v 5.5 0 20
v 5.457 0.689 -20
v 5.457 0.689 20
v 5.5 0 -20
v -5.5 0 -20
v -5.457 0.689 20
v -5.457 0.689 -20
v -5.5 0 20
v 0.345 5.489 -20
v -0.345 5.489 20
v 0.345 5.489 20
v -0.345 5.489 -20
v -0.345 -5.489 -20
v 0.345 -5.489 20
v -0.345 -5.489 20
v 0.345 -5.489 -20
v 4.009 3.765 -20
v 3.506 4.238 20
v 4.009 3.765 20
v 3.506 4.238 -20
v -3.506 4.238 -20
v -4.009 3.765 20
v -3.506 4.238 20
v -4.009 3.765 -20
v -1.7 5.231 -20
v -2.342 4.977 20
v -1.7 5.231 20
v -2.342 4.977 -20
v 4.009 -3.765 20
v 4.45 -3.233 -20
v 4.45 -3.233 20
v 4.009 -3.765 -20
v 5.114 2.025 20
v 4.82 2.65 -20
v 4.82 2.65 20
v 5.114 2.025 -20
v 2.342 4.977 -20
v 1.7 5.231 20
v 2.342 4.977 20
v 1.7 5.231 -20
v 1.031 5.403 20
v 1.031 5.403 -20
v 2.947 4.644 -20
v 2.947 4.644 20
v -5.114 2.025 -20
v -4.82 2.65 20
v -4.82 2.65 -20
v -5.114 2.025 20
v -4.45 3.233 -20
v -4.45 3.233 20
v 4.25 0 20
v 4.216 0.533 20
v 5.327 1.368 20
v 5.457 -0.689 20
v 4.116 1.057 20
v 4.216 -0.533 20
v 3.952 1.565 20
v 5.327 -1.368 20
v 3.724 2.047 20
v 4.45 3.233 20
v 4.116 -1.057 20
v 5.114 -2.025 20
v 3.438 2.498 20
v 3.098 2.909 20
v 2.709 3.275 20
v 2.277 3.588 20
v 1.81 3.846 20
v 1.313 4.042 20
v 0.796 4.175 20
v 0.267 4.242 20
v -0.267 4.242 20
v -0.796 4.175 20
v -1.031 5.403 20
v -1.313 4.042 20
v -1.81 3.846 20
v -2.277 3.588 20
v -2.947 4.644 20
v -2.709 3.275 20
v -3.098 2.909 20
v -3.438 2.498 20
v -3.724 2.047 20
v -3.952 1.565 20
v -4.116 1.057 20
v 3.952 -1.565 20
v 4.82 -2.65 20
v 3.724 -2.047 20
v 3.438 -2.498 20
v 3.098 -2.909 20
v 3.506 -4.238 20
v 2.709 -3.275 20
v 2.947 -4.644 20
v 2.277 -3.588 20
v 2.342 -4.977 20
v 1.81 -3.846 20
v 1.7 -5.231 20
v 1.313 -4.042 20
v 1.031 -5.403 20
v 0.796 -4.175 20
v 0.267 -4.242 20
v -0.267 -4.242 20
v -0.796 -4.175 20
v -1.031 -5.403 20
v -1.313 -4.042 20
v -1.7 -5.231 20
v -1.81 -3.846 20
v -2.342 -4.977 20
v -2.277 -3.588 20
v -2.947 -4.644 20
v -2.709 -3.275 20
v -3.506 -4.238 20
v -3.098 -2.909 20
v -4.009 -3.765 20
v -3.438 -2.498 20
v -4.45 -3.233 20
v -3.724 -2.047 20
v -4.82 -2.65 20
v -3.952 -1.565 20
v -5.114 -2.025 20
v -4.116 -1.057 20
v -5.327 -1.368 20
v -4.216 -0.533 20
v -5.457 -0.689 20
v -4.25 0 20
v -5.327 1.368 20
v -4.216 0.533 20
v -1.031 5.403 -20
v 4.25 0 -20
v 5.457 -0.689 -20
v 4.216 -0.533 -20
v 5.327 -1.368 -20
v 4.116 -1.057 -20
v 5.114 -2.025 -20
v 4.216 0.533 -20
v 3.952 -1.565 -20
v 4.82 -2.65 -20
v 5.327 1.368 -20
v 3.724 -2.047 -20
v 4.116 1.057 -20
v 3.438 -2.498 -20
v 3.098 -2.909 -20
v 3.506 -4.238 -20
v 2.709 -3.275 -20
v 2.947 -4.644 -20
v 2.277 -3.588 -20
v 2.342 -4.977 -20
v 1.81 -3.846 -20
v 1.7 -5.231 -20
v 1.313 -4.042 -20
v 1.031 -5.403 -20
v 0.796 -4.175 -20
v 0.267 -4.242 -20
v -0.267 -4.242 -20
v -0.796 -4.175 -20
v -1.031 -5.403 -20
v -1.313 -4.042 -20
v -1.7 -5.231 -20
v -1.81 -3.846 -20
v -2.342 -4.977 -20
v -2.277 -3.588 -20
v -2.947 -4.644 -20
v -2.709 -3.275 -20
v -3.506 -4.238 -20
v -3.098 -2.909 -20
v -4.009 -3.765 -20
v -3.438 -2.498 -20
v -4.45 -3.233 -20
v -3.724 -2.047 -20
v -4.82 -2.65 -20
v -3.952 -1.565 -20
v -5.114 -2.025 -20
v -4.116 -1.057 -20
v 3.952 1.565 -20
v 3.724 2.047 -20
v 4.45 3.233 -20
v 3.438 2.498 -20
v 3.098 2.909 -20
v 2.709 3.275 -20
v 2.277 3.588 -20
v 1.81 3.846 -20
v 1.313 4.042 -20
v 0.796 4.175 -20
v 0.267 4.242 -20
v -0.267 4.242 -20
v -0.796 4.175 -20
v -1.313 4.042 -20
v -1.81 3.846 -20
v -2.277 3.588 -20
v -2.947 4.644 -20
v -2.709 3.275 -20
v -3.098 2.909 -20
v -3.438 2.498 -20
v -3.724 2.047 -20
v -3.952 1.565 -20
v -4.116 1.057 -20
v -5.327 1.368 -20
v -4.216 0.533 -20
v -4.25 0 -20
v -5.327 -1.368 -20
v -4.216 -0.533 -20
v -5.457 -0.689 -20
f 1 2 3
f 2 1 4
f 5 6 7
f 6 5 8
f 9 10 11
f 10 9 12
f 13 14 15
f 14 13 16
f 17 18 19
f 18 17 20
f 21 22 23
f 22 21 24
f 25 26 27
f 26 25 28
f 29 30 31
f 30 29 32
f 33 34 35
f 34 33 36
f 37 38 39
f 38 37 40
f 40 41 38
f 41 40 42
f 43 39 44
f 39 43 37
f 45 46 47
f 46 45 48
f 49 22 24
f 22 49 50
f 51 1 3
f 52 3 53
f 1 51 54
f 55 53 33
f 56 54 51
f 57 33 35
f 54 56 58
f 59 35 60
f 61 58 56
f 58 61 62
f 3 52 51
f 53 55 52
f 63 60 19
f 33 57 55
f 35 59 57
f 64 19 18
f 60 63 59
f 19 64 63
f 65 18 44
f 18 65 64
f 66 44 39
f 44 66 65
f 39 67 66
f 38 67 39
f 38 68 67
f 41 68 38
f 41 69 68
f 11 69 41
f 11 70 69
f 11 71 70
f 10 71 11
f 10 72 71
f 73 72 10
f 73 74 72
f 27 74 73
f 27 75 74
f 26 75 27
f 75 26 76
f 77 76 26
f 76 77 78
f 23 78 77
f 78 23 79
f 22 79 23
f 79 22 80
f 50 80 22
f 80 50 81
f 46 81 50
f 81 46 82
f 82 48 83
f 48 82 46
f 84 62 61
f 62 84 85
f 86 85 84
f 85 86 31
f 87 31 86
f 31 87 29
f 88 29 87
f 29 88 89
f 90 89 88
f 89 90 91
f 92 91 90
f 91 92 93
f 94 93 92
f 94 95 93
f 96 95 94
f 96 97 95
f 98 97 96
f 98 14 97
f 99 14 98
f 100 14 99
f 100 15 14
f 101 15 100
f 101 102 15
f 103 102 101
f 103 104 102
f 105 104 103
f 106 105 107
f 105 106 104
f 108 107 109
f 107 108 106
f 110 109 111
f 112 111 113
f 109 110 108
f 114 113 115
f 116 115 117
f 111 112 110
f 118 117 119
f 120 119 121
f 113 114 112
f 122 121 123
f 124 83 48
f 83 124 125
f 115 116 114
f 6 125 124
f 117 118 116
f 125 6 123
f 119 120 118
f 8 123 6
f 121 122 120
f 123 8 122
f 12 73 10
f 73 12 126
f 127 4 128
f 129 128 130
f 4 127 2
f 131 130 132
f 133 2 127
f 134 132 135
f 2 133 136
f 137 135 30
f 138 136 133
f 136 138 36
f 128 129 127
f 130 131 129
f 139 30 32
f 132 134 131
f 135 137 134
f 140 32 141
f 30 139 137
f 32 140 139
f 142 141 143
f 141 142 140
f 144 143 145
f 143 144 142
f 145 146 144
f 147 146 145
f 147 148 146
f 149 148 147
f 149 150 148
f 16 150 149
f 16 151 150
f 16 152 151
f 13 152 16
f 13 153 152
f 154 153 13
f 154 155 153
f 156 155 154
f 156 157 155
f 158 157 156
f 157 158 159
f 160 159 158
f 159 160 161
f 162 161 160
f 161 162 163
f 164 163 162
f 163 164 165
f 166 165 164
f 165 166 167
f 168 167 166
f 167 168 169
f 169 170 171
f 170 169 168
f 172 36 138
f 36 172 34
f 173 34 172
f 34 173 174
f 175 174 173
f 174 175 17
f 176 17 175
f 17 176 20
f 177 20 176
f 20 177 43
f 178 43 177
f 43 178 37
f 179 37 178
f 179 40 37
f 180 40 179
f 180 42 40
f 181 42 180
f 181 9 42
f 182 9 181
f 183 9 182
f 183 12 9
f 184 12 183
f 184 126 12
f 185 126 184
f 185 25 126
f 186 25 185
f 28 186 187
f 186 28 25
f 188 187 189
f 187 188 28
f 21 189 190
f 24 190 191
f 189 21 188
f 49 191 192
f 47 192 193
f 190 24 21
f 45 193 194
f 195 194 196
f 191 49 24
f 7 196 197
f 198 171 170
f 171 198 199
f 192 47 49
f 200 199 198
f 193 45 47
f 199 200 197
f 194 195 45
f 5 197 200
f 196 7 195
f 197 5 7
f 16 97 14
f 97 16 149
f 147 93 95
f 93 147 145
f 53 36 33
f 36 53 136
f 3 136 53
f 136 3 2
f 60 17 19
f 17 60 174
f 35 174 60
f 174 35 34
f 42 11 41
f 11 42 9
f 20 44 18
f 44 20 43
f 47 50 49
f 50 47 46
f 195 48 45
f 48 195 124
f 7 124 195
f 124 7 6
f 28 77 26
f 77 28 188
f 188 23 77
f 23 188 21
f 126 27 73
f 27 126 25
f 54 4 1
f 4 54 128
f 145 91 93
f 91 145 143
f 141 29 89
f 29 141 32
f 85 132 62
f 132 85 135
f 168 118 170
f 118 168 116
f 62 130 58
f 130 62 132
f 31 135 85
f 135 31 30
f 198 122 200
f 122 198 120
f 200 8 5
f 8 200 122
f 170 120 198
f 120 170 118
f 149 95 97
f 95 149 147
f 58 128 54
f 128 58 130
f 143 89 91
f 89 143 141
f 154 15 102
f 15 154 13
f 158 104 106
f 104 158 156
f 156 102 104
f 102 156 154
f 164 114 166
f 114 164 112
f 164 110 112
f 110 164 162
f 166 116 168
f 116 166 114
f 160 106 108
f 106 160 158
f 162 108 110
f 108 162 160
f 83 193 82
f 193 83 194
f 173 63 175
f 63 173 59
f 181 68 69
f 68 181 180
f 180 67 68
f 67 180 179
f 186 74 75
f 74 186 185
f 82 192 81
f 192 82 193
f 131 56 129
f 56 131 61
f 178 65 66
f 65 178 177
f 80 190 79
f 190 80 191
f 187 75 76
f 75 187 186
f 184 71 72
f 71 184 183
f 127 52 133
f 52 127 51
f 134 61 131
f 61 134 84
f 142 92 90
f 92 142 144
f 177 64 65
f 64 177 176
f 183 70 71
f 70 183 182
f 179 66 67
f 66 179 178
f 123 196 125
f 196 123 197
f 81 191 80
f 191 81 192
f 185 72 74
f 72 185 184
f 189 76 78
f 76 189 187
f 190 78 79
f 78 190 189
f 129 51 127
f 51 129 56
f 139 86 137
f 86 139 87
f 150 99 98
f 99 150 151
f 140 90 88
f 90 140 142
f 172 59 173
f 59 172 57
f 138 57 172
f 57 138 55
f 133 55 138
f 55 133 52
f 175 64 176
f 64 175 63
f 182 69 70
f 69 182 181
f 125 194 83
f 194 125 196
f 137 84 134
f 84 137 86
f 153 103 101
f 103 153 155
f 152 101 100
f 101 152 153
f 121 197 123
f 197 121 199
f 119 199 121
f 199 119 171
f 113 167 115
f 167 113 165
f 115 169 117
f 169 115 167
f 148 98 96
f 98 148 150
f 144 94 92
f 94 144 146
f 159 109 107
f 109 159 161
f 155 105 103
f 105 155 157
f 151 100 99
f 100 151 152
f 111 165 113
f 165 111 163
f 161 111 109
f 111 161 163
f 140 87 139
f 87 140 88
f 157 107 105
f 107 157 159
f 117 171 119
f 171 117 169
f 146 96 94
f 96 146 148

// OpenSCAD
$fn = 50;


difference() {
	union() {
		translate(v = [0, 0, -20.0000000000]) {
			cylinder(h = 40, r = 5.5000000000);
		}
	}
	union() {
		translate(v = [0, 0, -100.0000000000]) {
			cylinder(h = 200, r = 4.2500000000);
		}
	}
}
